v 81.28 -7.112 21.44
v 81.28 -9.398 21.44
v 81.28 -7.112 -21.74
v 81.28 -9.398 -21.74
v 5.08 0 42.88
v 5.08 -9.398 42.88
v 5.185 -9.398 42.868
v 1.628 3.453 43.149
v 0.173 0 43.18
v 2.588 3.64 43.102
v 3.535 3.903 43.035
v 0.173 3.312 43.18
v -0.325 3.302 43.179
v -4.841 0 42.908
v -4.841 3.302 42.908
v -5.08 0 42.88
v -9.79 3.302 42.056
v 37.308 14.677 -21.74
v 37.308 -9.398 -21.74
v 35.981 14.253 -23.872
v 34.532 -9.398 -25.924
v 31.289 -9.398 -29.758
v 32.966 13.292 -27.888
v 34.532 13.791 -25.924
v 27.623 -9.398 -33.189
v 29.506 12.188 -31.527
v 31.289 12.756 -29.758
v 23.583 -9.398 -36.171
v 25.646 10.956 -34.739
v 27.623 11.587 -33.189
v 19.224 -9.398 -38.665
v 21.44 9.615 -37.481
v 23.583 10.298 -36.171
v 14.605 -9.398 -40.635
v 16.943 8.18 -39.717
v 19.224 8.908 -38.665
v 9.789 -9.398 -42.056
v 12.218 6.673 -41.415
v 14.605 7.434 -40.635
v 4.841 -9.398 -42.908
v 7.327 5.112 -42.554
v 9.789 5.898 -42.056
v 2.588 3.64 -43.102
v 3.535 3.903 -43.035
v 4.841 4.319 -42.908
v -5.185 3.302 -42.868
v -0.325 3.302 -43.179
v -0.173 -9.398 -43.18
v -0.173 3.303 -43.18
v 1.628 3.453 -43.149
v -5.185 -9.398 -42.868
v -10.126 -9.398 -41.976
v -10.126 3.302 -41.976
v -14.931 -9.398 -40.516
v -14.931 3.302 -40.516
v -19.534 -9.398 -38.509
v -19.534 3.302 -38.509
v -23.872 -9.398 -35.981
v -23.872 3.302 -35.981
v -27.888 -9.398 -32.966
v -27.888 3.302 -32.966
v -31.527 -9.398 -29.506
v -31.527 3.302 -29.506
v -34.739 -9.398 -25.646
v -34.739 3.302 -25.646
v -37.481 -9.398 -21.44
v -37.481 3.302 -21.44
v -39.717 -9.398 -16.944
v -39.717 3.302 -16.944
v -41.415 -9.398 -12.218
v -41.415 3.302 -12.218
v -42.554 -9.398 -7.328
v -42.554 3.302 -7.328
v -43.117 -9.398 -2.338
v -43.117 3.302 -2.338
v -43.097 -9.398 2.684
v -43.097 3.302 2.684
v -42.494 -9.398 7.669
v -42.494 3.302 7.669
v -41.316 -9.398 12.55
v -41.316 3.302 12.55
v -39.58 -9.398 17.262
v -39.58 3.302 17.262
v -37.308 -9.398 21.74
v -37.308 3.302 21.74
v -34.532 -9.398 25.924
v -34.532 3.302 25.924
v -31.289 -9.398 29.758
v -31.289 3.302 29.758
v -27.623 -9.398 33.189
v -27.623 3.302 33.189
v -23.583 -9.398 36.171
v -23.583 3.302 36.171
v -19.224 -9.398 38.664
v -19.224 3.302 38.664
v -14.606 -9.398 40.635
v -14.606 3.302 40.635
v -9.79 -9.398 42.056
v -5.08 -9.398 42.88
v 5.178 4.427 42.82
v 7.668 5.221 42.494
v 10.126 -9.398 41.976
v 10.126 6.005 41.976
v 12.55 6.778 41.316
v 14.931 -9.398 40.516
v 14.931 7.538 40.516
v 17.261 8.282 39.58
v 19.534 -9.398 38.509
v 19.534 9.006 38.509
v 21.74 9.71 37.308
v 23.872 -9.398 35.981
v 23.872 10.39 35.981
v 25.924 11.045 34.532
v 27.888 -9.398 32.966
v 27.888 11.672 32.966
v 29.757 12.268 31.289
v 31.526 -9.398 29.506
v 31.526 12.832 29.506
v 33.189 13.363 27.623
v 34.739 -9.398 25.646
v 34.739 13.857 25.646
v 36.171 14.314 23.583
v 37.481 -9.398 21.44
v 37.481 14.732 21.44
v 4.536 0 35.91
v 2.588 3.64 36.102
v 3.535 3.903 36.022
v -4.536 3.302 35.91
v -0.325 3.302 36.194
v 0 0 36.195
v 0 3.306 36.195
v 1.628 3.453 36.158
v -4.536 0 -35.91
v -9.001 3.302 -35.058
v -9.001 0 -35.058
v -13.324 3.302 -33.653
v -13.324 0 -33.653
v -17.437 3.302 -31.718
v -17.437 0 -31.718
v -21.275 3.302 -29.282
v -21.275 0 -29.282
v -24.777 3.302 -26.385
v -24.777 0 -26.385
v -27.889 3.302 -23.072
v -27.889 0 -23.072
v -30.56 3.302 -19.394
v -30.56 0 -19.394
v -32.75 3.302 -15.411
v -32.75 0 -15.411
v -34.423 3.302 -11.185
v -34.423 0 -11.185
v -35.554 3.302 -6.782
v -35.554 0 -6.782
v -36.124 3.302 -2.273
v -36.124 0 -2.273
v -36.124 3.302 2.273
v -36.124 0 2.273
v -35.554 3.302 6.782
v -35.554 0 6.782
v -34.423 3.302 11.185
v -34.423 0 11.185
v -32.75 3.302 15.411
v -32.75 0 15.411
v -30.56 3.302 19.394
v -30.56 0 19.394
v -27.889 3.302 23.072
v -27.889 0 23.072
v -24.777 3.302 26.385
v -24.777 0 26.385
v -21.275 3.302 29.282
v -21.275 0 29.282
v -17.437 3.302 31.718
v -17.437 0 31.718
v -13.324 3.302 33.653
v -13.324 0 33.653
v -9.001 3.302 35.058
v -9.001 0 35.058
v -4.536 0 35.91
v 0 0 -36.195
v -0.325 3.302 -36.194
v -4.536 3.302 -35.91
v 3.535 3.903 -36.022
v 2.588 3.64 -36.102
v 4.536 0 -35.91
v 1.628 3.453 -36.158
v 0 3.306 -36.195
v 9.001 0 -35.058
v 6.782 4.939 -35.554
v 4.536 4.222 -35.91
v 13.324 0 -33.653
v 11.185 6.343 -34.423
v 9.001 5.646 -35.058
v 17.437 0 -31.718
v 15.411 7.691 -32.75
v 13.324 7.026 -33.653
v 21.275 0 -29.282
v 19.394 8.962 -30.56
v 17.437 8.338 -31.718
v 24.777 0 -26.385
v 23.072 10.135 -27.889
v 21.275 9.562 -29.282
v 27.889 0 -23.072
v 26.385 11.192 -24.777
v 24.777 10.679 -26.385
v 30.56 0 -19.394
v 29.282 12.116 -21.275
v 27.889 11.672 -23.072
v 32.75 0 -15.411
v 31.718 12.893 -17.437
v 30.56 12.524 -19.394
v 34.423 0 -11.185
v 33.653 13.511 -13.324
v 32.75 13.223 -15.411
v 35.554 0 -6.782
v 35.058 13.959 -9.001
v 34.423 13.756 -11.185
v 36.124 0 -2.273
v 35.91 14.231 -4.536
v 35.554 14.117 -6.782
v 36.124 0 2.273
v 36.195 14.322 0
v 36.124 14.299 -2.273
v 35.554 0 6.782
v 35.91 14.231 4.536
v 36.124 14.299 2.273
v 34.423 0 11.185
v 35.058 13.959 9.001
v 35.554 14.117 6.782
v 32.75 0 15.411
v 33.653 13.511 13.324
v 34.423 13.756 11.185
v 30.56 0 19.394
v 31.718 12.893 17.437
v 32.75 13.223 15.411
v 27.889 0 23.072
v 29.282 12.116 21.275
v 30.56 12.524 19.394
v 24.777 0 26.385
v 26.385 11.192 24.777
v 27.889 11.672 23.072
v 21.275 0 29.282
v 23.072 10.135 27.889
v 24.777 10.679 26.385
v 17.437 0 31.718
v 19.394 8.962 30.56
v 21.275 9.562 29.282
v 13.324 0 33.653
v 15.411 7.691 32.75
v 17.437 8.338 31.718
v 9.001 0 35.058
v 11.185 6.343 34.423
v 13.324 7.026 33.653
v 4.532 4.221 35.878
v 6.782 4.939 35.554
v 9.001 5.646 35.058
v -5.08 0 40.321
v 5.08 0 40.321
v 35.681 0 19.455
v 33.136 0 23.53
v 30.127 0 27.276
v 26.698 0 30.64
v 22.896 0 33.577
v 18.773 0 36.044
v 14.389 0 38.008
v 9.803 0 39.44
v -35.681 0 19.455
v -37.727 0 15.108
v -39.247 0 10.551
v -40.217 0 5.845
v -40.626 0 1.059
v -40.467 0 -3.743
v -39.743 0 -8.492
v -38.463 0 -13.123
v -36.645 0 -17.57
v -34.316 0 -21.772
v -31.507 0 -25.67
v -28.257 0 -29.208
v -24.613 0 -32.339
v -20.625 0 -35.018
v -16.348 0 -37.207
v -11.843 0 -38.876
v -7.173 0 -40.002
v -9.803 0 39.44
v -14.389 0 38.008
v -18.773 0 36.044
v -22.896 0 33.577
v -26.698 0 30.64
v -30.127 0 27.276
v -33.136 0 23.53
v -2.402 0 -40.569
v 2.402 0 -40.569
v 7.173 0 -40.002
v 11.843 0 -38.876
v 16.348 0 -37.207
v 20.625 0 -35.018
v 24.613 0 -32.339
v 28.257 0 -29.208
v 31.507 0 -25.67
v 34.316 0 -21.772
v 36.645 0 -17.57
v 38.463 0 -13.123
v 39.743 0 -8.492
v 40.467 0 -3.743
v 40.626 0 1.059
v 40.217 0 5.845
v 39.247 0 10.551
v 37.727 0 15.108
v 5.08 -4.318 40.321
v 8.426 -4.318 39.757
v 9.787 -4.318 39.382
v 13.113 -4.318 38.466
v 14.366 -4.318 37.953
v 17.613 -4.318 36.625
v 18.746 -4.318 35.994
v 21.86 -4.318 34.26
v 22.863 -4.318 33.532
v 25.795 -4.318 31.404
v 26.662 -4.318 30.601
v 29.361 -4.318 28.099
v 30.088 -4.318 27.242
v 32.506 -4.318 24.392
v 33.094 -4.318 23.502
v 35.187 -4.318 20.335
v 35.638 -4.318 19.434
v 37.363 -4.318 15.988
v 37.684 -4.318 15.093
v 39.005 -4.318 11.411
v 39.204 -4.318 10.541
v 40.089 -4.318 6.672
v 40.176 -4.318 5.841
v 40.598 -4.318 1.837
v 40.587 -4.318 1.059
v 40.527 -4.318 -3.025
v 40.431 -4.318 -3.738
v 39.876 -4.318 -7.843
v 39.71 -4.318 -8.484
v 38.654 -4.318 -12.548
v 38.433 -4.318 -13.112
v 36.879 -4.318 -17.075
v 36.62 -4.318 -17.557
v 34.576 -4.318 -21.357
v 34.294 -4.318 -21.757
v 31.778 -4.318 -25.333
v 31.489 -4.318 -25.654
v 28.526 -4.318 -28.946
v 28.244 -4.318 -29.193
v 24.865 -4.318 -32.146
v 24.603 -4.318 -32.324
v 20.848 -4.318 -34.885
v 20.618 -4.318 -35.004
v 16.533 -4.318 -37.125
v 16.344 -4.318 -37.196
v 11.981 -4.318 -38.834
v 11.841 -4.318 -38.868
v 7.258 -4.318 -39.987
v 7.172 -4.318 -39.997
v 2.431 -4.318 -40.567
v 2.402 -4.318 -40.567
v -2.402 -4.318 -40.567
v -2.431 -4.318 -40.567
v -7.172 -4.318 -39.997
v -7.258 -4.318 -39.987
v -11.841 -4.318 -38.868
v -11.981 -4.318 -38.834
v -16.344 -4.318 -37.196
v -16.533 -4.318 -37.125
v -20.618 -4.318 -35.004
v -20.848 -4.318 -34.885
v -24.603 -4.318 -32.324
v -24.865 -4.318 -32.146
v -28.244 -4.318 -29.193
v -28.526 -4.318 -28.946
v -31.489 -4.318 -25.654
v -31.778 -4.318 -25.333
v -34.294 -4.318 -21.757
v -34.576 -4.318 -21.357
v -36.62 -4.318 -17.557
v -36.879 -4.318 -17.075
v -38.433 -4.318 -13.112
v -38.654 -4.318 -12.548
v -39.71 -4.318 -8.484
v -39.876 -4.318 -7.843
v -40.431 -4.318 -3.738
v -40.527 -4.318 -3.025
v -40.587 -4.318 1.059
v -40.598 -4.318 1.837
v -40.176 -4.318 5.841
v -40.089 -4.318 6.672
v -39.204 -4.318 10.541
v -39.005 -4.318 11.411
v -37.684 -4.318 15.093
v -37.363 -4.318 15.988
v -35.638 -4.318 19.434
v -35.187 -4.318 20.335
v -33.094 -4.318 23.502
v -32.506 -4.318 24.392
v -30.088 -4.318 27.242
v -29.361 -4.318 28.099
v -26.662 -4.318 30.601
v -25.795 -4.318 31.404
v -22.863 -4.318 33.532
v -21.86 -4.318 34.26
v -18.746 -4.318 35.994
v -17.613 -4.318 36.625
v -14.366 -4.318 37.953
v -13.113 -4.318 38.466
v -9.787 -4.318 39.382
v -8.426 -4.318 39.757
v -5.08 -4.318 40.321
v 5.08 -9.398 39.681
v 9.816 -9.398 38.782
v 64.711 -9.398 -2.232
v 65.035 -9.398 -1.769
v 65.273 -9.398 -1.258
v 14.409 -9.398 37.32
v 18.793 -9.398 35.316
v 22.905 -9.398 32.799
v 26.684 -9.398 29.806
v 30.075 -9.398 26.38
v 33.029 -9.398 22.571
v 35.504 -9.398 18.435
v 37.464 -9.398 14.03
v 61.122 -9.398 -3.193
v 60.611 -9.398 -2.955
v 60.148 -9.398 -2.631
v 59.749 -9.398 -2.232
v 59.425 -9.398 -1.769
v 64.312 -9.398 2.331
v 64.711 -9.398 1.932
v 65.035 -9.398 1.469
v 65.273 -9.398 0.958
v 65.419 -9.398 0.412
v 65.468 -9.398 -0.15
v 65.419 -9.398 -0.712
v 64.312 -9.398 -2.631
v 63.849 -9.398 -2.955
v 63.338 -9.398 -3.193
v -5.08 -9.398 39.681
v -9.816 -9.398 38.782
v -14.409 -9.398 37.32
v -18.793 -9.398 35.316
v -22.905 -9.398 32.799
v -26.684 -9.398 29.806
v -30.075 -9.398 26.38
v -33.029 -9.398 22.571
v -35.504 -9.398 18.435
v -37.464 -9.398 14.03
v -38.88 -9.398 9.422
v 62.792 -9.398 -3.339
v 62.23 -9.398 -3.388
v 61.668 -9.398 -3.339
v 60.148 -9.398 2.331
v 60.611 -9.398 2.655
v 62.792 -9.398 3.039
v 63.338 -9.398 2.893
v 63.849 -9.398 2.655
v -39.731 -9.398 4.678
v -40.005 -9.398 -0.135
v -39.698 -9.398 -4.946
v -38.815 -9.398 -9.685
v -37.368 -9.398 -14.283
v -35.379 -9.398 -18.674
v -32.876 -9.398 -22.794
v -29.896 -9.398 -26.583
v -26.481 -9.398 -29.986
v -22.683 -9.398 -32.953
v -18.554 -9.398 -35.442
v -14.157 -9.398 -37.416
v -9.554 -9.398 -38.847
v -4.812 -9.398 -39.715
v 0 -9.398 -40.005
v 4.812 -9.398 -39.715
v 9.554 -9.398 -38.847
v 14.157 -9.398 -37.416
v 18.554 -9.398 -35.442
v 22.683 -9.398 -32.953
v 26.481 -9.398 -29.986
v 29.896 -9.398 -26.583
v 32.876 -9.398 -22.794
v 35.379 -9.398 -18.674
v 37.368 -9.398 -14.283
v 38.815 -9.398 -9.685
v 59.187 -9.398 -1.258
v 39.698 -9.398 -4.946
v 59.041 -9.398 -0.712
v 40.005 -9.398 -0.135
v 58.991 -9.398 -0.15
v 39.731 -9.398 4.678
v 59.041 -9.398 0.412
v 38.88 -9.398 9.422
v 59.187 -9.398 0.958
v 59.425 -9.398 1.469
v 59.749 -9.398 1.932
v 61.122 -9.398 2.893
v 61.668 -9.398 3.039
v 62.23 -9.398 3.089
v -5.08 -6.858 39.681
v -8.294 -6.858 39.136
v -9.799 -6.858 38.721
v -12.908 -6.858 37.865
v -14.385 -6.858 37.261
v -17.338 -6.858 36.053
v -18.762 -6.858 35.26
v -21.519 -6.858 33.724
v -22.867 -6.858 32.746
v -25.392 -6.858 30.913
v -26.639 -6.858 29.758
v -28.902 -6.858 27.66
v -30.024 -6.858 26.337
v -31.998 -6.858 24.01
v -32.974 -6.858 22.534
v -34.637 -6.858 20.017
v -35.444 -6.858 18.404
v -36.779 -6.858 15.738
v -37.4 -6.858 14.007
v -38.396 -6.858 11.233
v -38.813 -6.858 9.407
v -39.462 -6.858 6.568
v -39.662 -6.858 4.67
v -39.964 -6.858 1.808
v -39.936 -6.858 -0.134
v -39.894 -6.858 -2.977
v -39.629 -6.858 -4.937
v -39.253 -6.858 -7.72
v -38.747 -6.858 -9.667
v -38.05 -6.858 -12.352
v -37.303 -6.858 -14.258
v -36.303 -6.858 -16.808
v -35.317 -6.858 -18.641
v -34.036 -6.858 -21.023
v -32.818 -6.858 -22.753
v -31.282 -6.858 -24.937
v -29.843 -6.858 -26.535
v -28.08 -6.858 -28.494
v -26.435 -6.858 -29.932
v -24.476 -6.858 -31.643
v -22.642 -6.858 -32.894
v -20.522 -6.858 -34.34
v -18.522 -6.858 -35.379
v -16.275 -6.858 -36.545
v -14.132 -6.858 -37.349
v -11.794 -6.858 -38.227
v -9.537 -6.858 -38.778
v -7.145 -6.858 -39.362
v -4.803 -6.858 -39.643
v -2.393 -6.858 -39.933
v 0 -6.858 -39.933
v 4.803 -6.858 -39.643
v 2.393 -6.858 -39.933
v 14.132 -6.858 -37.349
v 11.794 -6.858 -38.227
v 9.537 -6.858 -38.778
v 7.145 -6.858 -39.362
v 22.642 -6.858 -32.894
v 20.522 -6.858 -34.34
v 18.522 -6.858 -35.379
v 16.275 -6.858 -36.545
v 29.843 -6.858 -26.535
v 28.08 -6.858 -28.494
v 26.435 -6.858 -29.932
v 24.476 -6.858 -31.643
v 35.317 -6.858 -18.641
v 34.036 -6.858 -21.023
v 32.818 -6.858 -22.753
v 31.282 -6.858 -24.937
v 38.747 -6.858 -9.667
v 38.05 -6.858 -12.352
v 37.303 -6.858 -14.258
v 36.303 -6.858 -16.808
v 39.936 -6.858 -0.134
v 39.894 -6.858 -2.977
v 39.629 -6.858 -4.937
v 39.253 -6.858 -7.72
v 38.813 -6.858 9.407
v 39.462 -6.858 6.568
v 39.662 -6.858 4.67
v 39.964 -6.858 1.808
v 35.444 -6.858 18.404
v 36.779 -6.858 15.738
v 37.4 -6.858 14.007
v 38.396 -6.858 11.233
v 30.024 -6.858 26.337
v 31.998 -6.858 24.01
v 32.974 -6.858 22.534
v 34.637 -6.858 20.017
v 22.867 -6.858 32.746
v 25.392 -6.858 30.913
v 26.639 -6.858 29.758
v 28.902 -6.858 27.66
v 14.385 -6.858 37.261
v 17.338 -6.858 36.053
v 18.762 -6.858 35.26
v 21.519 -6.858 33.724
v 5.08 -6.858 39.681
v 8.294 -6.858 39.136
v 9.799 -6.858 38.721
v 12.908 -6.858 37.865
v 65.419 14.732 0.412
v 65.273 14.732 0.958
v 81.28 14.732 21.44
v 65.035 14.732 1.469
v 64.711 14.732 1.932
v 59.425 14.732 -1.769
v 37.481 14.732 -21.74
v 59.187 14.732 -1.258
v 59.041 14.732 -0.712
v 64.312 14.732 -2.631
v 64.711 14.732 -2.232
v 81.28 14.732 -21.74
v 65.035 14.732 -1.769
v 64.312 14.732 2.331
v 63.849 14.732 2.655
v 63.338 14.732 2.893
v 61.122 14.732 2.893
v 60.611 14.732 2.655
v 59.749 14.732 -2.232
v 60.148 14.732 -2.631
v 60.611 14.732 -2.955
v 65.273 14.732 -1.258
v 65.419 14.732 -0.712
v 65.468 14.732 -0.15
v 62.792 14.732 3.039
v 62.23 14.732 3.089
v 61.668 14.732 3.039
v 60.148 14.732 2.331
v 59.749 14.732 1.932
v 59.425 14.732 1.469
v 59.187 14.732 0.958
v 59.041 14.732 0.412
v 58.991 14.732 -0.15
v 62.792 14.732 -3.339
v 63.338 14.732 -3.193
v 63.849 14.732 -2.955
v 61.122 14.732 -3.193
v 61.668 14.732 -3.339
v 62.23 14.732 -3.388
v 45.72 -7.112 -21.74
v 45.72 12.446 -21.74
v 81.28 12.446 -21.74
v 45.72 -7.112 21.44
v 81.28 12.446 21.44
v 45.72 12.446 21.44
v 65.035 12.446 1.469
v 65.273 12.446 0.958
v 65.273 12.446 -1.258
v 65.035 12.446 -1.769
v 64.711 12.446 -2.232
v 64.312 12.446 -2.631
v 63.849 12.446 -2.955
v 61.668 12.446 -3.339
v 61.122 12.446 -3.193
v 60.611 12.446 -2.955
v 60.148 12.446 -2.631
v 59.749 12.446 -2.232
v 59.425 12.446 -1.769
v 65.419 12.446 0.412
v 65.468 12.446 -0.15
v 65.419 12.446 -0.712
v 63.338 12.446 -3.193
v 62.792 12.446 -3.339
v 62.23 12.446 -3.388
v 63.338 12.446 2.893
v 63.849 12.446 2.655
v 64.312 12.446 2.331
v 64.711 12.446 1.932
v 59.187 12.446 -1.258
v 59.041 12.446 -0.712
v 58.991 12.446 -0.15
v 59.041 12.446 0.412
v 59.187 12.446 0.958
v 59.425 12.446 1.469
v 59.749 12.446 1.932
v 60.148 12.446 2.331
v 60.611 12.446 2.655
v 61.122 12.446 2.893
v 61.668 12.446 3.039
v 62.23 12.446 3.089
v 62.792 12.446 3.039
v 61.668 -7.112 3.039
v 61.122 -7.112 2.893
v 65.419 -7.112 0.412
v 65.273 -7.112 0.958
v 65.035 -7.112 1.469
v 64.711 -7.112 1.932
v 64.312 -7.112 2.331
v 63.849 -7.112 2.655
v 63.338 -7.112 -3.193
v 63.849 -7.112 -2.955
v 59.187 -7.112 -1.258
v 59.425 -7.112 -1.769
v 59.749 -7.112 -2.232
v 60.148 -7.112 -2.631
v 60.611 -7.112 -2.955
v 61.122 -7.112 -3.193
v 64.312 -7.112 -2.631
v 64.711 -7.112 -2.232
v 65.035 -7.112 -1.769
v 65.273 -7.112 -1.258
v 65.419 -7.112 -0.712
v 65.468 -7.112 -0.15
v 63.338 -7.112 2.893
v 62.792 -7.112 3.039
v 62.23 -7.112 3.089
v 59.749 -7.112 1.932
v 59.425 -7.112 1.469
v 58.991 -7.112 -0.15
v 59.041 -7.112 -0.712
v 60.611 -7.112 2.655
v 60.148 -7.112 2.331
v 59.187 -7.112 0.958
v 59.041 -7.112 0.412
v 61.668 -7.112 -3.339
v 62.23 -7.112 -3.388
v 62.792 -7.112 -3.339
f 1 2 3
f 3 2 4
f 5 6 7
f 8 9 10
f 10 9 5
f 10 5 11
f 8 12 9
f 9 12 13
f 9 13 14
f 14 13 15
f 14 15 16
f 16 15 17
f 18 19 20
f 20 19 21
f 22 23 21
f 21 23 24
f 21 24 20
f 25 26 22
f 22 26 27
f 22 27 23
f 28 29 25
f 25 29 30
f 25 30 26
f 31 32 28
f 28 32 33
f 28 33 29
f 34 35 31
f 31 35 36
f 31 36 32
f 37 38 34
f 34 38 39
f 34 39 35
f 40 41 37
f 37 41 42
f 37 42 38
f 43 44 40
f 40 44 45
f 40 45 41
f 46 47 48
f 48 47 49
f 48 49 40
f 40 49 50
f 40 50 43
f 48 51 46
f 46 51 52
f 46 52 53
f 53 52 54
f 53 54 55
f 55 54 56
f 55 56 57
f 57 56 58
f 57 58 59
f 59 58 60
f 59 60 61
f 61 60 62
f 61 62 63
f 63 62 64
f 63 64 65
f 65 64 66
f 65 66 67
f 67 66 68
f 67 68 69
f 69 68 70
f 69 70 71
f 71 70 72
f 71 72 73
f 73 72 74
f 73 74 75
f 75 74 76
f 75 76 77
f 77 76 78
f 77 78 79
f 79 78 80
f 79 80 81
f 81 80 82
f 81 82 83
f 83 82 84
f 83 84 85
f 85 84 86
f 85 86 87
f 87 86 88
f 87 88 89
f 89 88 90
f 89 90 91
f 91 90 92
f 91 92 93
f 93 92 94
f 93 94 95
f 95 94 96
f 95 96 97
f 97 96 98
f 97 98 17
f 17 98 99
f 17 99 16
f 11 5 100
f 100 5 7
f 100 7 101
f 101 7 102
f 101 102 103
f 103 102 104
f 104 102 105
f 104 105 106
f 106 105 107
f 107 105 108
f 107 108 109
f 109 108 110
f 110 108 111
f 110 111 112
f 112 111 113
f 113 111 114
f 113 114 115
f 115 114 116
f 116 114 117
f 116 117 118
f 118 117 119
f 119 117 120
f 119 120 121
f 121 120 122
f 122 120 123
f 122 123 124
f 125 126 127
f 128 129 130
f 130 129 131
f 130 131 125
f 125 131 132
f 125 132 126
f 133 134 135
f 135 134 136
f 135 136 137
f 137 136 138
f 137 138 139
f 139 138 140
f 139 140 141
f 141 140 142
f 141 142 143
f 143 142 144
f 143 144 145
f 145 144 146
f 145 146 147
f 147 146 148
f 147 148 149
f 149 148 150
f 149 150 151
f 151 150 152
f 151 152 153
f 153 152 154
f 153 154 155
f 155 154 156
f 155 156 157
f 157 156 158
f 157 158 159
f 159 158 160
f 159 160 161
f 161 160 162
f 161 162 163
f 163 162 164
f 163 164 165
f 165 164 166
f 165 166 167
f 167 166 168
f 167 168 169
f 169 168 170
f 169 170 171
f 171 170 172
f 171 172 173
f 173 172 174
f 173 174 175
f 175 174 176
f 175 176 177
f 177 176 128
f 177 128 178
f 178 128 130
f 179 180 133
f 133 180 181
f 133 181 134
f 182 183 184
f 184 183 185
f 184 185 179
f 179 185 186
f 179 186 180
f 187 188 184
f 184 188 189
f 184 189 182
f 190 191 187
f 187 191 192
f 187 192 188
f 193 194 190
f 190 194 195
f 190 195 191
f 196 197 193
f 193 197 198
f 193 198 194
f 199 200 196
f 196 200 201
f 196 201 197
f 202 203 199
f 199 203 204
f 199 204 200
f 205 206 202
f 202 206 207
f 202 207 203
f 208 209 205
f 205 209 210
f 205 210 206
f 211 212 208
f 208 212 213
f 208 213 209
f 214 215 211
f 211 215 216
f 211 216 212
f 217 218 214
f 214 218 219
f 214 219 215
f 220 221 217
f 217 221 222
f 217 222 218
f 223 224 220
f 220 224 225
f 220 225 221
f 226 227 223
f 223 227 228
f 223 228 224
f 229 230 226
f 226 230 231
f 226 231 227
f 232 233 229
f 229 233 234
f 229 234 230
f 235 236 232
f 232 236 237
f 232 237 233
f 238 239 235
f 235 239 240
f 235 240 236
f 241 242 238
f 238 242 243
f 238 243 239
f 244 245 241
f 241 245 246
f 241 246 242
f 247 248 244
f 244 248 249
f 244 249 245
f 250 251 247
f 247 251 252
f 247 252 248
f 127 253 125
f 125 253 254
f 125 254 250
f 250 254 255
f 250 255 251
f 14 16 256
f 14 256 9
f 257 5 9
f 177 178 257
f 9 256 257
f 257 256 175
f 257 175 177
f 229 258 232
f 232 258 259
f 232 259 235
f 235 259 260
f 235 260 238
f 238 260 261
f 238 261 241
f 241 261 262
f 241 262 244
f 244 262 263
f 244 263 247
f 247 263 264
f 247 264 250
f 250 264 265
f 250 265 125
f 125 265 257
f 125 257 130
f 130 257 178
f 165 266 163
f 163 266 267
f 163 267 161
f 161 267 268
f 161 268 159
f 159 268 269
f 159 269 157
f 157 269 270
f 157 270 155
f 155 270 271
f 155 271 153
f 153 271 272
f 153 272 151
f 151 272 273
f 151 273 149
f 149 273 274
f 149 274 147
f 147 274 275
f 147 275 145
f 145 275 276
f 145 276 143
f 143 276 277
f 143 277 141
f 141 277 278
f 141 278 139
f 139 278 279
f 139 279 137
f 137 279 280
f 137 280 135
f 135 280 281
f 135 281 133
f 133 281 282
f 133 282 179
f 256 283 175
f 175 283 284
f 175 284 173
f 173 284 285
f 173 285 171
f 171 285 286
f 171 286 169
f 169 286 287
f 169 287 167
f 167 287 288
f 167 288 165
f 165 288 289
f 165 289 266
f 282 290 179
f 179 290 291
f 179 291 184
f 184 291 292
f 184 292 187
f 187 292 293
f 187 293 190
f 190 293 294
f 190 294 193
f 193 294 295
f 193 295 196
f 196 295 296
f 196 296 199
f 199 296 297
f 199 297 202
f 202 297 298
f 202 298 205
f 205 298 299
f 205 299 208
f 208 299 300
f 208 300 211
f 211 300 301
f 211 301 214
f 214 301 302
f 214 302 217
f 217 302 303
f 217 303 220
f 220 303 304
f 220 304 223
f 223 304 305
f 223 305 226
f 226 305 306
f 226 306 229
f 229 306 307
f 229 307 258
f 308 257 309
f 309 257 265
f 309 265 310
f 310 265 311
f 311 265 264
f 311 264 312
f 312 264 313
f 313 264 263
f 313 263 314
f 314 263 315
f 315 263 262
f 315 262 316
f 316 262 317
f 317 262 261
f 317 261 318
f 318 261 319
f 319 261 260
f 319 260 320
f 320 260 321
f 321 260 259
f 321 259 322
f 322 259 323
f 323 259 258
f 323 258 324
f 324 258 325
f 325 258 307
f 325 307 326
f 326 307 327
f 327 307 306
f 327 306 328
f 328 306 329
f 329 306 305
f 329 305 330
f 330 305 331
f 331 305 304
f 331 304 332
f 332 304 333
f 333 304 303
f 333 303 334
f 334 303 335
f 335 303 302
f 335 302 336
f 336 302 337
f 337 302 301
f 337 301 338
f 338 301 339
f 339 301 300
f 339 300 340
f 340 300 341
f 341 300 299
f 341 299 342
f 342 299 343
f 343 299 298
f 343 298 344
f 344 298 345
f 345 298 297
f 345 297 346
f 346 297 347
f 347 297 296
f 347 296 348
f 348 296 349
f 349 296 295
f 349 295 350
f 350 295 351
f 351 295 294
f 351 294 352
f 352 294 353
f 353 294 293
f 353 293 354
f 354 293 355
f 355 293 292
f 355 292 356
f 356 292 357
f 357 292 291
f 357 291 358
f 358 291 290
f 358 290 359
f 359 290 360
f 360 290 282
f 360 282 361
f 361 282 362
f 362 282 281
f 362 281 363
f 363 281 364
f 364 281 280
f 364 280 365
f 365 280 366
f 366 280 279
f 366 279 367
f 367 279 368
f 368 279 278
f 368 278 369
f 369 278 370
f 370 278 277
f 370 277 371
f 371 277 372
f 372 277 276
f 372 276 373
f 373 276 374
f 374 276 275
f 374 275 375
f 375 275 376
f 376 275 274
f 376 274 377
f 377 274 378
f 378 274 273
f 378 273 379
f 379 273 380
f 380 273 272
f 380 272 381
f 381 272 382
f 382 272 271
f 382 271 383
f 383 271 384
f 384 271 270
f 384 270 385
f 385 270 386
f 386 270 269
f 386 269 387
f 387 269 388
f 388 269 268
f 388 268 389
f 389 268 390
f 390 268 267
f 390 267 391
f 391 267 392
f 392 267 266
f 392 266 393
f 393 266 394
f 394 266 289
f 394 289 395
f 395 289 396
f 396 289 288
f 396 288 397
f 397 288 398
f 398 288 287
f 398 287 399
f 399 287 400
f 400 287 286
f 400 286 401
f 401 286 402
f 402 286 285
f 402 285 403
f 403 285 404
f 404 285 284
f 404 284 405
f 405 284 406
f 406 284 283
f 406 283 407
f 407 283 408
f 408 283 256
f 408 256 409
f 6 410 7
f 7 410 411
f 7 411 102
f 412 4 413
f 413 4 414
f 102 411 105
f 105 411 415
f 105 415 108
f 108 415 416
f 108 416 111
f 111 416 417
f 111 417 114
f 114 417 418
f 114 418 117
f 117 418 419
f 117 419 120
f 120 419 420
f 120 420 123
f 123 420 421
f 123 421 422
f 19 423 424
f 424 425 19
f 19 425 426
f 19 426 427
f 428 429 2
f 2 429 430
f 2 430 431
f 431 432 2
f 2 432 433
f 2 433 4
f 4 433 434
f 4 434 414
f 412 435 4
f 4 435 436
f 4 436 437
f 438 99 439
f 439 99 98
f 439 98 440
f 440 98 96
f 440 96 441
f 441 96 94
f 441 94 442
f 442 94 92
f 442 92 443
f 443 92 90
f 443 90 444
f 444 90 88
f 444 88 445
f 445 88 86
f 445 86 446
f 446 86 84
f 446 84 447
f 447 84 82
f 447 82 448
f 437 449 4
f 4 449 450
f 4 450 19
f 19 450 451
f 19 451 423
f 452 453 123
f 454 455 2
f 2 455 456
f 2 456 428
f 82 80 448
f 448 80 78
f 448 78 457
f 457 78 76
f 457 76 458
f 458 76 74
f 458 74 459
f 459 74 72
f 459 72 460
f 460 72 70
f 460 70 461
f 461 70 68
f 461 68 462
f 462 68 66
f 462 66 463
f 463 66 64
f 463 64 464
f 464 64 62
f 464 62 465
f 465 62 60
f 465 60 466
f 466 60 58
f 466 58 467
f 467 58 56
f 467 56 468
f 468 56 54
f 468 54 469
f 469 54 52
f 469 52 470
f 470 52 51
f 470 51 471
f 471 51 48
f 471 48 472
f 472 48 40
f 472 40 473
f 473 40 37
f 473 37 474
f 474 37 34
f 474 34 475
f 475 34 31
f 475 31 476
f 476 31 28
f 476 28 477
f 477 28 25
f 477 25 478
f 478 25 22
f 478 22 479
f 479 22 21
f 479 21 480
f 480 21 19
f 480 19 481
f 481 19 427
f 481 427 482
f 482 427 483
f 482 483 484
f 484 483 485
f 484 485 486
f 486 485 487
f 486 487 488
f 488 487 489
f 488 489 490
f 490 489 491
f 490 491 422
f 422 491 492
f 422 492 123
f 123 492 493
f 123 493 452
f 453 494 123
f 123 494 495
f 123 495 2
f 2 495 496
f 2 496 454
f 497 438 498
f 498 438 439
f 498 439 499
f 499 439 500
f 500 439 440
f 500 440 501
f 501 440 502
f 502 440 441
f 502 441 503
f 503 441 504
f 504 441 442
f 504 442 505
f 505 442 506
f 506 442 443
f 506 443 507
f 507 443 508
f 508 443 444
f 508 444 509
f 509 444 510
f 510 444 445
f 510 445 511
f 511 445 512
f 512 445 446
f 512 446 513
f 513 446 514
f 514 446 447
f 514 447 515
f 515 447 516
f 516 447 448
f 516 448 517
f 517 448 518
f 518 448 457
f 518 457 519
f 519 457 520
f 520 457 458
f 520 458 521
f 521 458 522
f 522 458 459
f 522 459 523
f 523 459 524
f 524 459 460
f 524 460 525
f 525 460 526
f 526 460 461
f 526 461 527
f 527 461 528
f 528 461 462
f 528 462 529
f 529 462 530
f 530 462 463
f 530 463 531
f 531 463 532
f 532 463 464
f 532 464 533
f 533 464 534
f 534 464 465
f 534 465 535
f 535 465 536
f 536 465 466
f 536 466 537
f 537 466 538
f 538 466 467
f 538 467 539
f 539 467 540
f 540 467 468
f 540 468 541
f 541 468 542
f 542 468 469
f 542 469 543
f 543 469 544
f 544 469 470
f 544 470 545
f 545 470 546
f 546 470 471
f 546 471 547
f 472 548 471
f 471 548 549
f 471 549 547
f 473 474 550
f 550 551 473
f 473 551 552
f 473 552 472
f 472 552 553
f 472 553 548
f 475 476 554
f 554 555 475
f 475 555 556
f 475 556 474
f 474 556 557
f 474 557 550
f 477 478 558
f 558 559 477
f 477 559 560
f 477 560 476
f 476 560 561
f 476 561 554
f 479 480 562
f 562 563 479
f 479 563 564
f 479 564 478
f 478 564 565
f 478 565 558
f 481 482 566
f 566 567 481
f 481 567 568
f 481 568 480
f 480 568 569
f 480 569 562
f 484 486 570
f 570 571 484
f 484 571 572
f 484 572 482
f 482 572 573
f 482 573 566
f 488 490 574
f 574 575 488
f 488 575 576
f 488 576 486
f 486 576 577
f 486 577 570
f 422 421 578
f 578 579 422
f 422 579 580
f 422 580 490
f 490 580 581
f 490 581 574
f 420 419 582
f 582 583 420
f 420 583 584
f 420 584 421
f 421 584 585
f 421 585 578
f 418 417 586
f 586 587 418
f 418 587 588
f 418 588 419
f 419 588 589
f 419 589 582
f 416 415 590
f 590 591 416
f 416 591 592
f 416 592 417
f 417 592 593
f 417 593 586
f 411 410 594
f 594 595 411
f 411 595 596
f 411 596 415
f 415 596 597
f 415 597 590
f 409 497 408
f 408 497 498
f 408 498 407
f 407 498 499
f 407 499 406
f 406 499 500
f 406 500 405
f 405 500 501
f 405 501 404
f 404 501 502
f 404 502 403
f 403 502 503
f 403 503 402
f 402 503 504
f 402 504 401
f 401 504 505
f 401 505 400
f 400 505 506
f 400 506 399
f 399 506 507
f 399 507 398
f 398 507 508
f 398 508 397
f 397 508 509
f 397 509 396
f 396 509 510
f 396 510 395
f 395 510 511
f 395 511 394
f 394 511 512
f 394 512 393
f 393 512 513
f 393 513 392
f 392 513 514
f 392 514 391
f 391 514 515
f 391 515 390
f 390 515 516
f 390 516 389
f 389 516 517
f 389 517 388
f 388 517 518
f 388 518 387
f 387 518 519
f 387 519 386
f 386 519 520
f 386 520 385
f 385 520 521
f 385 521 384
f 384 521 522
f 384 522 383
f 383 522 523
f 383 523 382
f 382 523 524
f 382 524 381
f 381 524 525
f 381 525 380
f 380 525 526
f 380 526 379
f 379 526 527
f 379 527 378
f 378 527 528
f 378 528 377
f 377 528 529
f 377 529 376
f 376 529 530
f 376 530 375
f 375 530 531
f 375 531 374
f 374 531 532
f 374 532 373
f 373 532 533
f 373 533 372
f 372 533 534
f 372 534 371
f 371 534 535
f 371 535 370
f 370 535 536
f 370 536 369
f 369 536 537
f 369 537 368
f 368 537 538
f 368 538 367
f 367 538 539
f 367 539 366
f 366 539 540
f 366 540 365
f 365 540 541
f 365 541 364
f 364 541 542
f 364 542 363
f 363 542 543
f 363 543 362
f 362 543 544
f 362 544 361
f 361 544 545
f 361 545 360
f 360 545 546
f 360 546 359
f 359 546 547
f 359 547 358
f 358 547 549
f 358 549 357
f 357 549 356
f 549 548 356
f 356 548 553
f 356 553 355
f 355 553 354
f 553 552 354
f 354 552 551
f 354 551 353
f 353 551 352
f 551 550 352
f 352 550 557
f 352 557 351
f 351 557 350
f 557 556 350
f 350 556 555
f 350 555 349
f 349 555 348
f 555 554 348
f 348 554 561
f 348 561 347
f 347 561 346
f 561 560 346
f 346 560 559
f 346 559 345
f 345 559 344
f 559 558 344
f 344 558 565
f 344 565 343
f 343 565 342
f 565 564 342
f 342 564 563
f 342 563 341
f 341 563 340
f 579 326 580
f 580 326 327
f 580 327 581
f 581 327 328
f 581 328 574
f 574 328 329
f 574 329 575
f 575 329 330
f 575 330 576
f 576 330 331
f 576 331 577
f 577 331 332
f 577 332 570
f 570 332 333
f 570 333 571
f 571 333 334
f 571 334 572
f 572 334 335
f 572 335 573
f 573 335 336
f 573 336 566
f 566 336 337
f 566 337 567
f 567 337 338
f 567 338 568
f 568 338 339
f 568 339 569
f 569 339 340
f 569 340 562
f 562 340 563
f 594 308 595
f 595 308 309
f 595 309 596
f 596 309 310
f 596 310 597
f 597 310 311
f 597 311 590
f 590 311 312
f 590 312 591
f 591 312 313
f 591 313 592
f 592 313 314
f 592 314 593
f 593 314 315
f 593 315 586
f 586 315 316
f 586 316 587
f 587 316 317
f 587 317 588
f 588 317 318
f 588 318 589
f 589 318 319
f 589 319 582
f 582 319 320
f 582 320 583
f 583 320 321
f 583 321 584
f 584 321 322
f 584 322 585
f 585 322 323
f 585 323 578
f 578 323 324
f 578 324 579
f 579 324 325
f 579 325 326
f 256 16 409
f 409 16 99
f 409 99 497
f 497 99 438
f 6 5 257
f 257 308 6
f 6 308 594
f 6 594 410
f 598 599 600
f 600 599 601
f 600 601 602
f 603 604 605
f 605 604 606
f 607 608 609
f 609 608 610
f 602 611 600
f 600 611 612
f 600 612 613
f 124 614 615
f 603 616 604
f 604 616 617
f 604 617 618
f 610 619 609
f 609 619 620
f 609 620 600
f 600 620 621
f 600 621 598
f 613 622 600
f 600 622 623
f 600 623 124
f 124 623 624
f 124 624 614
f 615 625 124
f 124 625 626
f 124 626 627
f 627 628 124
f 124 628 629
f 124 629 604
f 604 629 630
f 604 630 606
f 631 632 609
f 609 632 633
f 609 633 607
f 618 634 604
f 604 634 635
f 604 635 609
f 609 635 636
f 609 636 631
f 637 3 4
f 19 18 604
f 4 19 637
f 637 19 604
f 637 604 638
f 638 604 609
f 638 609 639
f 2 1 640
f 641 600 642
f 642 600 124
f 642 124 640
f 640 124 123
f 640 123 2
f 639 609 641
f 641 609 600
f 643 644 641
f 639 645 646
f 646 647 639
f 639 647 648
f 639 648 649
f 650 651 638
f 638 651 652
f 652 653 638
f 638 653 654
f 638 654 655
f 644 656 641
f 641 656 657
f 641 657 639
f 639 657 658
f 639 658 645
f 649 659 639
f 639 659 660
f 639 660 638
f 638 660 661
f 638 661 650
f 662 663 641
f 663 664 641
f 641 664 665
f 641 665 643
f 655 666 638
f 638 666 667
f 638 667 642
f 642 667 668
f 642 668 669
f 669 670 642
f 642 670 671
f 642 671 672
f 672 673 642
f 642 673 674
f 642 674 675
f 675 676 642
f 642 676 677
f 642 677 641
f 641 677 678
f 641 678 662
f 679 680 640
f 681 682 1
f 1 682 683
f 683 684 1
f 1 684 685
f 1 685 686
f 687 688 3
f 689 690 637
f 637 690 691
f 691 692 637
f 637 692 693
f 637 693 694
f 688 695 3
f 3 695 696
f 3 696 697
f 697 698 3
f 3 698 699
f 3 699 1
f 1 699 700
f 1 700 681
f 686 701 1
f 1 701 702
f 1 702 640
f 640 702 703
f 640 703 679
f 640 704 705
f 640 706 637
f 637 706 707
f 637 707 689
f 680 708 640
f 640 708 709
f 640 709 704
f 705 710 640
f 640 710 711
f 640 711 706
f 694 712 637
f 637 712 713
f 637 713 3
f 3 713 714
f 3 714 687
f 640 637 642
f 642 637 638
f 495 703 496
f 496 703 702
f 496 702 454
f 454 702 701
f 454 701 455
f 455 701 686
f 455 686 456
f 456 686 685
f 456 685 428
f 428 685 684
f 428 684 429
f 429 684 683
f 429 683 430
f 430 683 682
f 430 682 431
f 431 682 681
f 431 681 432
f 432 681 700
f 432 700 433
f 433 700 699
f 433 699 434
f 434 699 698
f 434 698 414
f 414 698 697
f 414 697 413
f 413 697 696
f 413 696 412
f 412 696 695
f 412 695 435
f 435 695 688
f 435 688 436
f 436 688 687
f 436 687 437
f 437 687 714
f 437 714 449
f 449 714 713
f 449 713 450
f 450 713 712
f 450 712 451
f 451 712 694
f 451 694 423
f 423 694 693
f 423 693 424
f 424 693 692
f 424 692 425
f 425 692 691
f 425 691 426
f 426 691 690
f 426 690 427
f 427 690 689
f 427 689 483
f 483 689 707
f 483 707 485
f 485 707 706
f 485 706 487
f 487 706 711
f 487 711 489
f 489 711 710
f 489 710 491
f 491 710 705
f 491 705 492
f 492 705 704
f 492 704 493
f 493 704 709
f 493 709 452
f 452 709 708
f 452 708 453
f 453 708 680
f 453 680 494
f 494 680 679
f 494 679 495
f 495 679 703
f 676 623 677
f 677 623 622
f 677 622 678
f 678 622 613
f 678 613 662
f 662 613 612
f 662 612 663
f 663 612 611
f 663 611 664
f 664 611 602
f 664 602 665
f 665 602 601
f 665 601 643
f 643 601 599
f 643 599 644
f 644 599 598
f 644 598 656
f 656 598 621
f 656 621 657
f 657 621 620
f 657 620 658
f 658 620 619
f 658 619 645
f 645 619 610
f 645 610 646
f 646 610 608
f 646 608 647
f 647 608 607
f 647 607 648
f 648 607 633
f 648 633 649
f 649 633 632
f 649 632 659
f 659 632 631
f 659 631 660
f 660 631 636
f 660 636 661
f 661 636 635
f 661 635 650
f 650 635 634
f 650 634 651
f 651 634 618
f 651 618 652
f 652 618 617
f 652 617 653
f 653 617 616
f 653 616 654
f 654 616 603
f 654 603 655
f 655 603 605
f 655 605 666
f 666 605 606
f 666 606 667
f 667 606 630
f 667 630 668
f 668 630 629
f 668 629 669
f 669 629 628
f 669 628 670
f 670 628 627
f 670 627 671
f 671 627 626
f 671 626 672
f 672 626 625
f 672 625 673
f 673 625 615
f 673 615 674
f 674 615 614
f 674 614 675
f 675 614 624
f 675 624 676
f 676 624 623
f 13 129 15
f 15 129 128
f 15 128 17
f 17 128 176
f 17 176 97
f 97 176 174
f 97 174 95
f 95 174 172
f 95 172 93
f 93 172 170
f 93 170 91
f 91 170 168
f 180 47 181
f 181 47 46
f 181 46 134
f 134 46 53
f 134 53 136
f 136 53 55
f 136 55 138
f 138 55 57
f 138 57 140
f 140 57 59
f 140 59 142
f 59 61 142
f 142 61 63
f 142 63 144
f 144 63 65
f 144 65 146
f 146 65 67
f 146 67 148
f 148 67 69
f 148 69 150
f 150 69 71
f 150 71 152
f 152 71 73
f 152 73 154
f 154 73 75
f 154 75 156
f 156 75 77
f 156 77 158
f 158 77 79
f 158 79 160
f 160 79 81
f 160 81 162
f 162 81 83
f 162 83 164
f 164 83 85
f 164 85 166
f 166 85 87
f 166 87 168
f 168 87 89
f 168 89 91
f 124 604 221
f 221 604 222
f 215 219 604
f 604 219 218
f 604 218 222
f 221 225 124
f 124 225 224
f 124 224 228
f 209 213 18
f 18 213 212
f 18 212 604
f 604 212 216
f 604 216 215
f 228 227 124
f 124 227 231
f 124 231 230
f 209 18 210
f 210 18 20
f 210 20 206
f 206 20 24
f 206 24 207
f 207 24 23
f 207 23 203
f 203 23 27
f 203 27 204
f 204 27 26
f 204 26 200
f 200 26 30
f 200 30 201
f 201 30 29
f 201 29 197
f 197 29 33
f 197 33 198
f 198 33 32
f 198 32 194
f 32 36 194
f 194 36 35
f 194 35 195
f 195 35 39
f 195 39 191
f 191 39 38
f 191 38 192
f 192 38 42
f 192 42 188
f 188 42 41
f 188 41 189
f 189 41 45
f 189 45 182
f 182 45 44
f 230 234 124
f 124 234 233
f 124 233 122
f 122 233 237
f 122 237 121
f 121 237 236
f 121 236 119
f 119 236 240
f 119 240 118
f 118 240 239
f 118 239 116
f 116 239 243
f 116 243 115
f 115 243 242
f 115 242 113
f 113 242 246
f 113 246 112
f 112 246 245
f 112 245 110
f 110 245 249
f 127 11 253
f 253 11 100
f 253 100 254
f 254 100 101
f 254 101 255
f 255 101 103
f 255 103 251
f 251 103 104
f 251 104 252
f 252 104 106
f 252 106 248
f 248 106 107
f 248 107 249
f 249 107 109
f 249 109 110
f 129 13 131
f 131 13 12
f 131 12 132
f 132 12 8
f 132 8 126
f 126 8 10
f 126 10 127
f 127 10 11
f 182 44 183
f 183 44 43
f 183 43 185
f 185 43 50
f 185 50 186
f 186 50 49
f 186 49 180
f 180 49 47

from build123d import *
from build123d.topology import SkipClean

# Parameters (mm, degrees)
SKETCH1_R                = 43.18
SKETCH1_R_2              = 38.1
SKETCH1_R_3              = 36.195
BOSS_EXTRUDE1_DEPTH      = 2.54
BOSS_EXTRUDE2_START      = 4.318
SKETCH2_R                = 43.18
SKETCH2_R_2              = 40.64
BOSS_EXTRUDE2_DEPTH      = 4.318
SKETCH7_W                = 5.08
SKETCH7_H                = 10.16
CUT_EXTRUDE1_DEPTH       = 12.7
SKETCH12_R               = 43.18
SKETCH12_R_2             = 36.195
BOSS_EXTRUDE3_DEPTH      = 12.192
BOSS_EXTRUDE4_REACH      = 99.671
BOSS_EXTRUDE4_END_RADIUS = 43.18
SKETCH13_W               = 43.18
SKETCH13_H               = 24.13
BOSS_EXTRUDE5_DEPTH      = 38.1
SKETCH14_W               = 38.608
SKETCH14_H               = 19.558
CUT_EXTRUDE2_DEPTH       = 35.56
SKETCH17_R               = 3.2385
CUT_EXTRUDE3_DEPTH       = 35.56
CUT_EXTRUDE5_DEPTH       = 88.9
FILLET1_R                = 12.7
SKETCH23_W               = 35.56
SKETCH23_H               = 19.558
CUT_EXTRUDE6_DEPTH       = 50.8


with BuildPart() as part:
    # Sketch1 → Boss-Extrude1 (new body)
    # profile 1 of 2: a face of its own
    with BuildSketch(Plane(origin=(0, 0, 0), x_dir=(1, 0, 0), z_dir=(0, 1, 0))):
        with Locations(Location((0, 0, 0), (0, 0, 270))):
            Circle(SKETCH1_R)
        Circle(SKETCH1_R_2, mode=Mode.SUBTRACT)
    # profile 2 of 2: a face of its own
    with BuildSketch(Plane(origin=(0, 0, 0), x_dir=(1, 0, 0), z_dir=(0, 1, 0))):
        Circle(SKETCH1_R_2)
        with Locations(Location((0, 0, 0), (0, 0, 270))):
            Circle(SKETCH1_R_3, mode=Mode.SUBTRACT)
    extrude(amount=BOSS_EXTRUDE1_DEPTH)

    # Sketch2 → Boss-Extrude2 (add)
    with BuildSketch(Plane.XZ.offset(BOSS_EXTRUDE2_START)):
        with Locations(Location((0, 0, 0), (0, 0, 270))):
            Circle(SKETCH2_R)
        with Locations(Location((0, 0, 0), (0, 0, 270))):
            Circle(SKETCH2_R_2, mode=Mode.SUBTRACT)
    extrude(amount=-BOSS_EXTRUDE2_DEPTH)

    # Sketch3 → Revolve1 (revolve)
    with BuildSketch(Plane.XY, mode=Mode.PRIVATE) as revolve1_sk:
        Polygon((-40.64, -4.318), (-43.18, -4.318), (-43.18, -9.398), (-40.005, -9.398), (-40.005, -6.858), align=None)
    revolve(revolve1_sk.sketch.rotate(Axis((0, 0, 0), (0, 1, 0)), 270), axis=Axis((0, 0, 0), (0, 1, 0)))

    # Sketch7 → Cut-Extrude1 (cut)
    with SkipClean():  # the faces are left unmerged after this step: merging them gives an invalid solid
        with BuildSketch(Plane.XY.offset(43.18)):
            with Locations((-2.54, -5.08)):
                Rectangle(SKETCH7_W, SKETCH7_H)
            with Locations((2.54, -5.08)):
                Rectangle(SKETCH7_W, SKETCH7_H)
        extrude(amount=-CUT_EXTRUDE1_DEPTH, mode=Mode.SUBTRACT)

    # Sketch12 → Boss-Extrude3 (add)
    with SkipClean():  # the faces are left unmerged after this step: merging them gives an invalid solid
        with BuildSketch(Plane(origin=(0, 2.54, 0), x_dir=(1, 0, 0), z_dir=(0, 1, 0))):
            with Locations(Location((0, 0, 0), (0, 0, 263.243672969))):
                Circle(SKETCH12_R)
            with Locations(Location((0, 0, 0), (0, 0, 270))):
                Circle(SKETCH12_R_2, mode=Mode.SUBTRACT)
        extrude(amount=BOSS_EXTRUDE3_DEPTH)

    # Boss-Extrude4: up to this cylinder (the profile starts outside it)
    with SkipClean():  # the faces are left unmerged after this step: merging them gives an invalid solid
        boss_extrude4_end = Plane(origin=(0, 2.667, 0), z_dir=(0, -1, 0)) * Cylinder(BOSS_EXTRUDE4_END_RADIUS, 286.702, mode=Mode.PRIVATE)
        # Sketch8 → Boss-Extrude4 (add, up to the surface)
        with BuildSketch(Plane(origin=(43.18, 0, 0), x_dir=(0, 0, -1), z_dir=(1, 0, 0)), mode=Mode.PRIVATE) as boss_extrude4_sk1:
            Polygon((0.14993237, -9.398), (21.73993237, -9.398), (21.73993237, 14.732), (-21.44006763, 14.732), (-21.44006763, -9.398), align=None)
        boss_extrude4_tool1 = extrude(boss_extrude4_sk1.sketch, amount=-BOSS_EXTRUDE4_REACH, mode=Mode.PRIVATE) - boss_extrude4_end
        add(boss_extrude4_tool1.solids().sort_by_distance((43.18, 2.667, -0.149932))[0])
        add(boss_extrude4_tool1.solids().sort_by_distance((43.18, 2.667, -0.149932))[1])

    # Sketch13 → Boss-Extrude5 (add)
    with SkipClean():  # the faces are left unmerged after this step: merging them gives an invalid solid
        with BuildSketch(Plane(origin=(43.18, 0, 0), x_dir=(0, 0, -1), z_dir=(1, 0, 0))):
            with Locations((0.14993237, 2.667)):
                Rectangle(SKETCH13_W, SKETCH13_H)
        extrude(amount=BOSS_EXTRUDE5_DEPTH)

    # Sketch14 → Cut-Extrude2 (cut)
    with SkipClean():  # the faces are left unmerged after this step: merging them gives an invalid solid
        with BuildSketch(Plane(origin=(81.28, 0, 0), x_dir=(0, 0, -1), z_dir=(1, 0, 0))):
            with Locations((0.14993237, 2.667)):
                Rectangle(SKETCH14_W, SKETCH14_H)
        extrude(amount=-CUT_EXTRUDE2_DEPTH, mode=Mode.SUBTRACT)

    # Sketch17 → Cut-Extrude3 (cut)
    with SkipClean():  # the faces are left unmerged after this step: merging them gives an invalid solid
        with BuildSketch(Plane(origin=(0, 14.732, 0), x_dir=(1, 0, 0), z_dir=(0, 1, 0))):
            with Locations(Location((62.23, 0.14993237, 0), (0, 0, 90))):
                Circle(SKETCH17_R)
        extrude(amount=-CUT_EXTRUDE3_DEPTH, mode=Mode.SUBTRACT)

    # Sketch22 → Cut-Extrude5 (cut)
    with SkipClean():  # the faces are left unmerged after this step: merging them gives an invalid solid
        with BuildSketch(Plane.XY.offset(43.18)):
            Polygon((37.481140591, 14.732), (1.651830342, 3.302), (-49.162594564, 3.302), (-49.162594564, 14.732), align=None)
        extrude(amount=-CUT_EXTRUDE5_DEPTH, mode=Mode.SUBTRACT)

    # Fillet1
    # the kernel refuses this fillet: 12.7 mm, written as the material it adds along each edge
    with BuildSketch(Plane(origin=(1.651830342, 3.302, -31.215644567), x_dir=(0.9526968361956157, 0.30392225700475445, 0), z_dir=(0, 0, -1))) as fillet1_piece_1_section:
        with BuildLine():
            CenterArc((FILLET1_R * 0.155642315474, -FILLET1_R), FILLET1_R, 90, 17.69333606)
            Line((-FILLET1_R * 0.14827994153, -FILLET1_R * 0.0473031638044), (0, 0))
            Line((0, 0), (FILLET1_R * 0.155642315474, 0))
        make_face()
    fillet1_piece_1 = extrude(amount=16.87439239, mode=Mode.PRIVATE)
    fillet1_piece_1 = fillet1_piece_1 & Plane(origin=(0, 3.342340144, 0), x_dir=(-0.11764705883067372, 0, 0.9930554715364556), z_dir=(0, -1, 0)) * Cylinder(43.18, 42, mode=Mode.PRIVATE)
    fillet1_piece_1 = fillet1_piece_1 - Plane(origin=(0, 3.342340144, 0), x_dir=(0, 0, 1), z_dir=(0, -1, 0)) * Cylinder(36.195, 42, mode=Mode.PRIVATE)
    add(fillet1_piece_1)
    with BuildSketch(Plane(origin=(1.651830342, 3.302, 48.090036957), x_dir=(0.9526968361956157, 0.30392225700475445, 0), z_dir=(0, 0, -1))) as fillet1_piece_2_section:
        with BuildLine():
            CenterArc((FILLET1_R * 0.155642315474, -FILLET1_R), FILLET1_R, 90, 17.69333606)
            Line((-FILLET1_R * 0.14827994153, -FILLET1_R * 0.0473031638044), (0, 0))
            Line((0, 0), (FILLET1_R * 0.155642315474, 0))
        make_face()
    fillet1_piece_2 = extrude(amount=16.87439239, mode=Mode.PRIVATE)
    fillet1_piece_2 = fillet1_piece_2 & Plane(origin=(0, 3.342340147, 0), x_dir=(-0.11764705883067372, 0, 0.9930554715364556), z_dir=(0, -1, 0)) * Cylinder(43.18, 42, mode=Mode.PRIVATE)
    fillet1_piece_2 = fillet1_piece_2 - Plane(origin=(0, 3.342340147, 0), x_dir=(0, 0, 1), z_dir=(0, -1, 0)) * Cylinder(36.195, 42, mode=Mode.PRIVATE)
    add(fillet1_piece_2)

    # Sketch23 → Cut-Extrude6 (cut)
    with BuildSketch(Plane.XY.offset(21.44006763)):
        with Locations((63.5, 2.667)):
            Rectangle(SKETCH23_W, SKETCH23_H)
    extrude(amount=-CUT_EXTRUDE6_DEPTH, mode=Mode.SUBTRACT)


solid = part.part
